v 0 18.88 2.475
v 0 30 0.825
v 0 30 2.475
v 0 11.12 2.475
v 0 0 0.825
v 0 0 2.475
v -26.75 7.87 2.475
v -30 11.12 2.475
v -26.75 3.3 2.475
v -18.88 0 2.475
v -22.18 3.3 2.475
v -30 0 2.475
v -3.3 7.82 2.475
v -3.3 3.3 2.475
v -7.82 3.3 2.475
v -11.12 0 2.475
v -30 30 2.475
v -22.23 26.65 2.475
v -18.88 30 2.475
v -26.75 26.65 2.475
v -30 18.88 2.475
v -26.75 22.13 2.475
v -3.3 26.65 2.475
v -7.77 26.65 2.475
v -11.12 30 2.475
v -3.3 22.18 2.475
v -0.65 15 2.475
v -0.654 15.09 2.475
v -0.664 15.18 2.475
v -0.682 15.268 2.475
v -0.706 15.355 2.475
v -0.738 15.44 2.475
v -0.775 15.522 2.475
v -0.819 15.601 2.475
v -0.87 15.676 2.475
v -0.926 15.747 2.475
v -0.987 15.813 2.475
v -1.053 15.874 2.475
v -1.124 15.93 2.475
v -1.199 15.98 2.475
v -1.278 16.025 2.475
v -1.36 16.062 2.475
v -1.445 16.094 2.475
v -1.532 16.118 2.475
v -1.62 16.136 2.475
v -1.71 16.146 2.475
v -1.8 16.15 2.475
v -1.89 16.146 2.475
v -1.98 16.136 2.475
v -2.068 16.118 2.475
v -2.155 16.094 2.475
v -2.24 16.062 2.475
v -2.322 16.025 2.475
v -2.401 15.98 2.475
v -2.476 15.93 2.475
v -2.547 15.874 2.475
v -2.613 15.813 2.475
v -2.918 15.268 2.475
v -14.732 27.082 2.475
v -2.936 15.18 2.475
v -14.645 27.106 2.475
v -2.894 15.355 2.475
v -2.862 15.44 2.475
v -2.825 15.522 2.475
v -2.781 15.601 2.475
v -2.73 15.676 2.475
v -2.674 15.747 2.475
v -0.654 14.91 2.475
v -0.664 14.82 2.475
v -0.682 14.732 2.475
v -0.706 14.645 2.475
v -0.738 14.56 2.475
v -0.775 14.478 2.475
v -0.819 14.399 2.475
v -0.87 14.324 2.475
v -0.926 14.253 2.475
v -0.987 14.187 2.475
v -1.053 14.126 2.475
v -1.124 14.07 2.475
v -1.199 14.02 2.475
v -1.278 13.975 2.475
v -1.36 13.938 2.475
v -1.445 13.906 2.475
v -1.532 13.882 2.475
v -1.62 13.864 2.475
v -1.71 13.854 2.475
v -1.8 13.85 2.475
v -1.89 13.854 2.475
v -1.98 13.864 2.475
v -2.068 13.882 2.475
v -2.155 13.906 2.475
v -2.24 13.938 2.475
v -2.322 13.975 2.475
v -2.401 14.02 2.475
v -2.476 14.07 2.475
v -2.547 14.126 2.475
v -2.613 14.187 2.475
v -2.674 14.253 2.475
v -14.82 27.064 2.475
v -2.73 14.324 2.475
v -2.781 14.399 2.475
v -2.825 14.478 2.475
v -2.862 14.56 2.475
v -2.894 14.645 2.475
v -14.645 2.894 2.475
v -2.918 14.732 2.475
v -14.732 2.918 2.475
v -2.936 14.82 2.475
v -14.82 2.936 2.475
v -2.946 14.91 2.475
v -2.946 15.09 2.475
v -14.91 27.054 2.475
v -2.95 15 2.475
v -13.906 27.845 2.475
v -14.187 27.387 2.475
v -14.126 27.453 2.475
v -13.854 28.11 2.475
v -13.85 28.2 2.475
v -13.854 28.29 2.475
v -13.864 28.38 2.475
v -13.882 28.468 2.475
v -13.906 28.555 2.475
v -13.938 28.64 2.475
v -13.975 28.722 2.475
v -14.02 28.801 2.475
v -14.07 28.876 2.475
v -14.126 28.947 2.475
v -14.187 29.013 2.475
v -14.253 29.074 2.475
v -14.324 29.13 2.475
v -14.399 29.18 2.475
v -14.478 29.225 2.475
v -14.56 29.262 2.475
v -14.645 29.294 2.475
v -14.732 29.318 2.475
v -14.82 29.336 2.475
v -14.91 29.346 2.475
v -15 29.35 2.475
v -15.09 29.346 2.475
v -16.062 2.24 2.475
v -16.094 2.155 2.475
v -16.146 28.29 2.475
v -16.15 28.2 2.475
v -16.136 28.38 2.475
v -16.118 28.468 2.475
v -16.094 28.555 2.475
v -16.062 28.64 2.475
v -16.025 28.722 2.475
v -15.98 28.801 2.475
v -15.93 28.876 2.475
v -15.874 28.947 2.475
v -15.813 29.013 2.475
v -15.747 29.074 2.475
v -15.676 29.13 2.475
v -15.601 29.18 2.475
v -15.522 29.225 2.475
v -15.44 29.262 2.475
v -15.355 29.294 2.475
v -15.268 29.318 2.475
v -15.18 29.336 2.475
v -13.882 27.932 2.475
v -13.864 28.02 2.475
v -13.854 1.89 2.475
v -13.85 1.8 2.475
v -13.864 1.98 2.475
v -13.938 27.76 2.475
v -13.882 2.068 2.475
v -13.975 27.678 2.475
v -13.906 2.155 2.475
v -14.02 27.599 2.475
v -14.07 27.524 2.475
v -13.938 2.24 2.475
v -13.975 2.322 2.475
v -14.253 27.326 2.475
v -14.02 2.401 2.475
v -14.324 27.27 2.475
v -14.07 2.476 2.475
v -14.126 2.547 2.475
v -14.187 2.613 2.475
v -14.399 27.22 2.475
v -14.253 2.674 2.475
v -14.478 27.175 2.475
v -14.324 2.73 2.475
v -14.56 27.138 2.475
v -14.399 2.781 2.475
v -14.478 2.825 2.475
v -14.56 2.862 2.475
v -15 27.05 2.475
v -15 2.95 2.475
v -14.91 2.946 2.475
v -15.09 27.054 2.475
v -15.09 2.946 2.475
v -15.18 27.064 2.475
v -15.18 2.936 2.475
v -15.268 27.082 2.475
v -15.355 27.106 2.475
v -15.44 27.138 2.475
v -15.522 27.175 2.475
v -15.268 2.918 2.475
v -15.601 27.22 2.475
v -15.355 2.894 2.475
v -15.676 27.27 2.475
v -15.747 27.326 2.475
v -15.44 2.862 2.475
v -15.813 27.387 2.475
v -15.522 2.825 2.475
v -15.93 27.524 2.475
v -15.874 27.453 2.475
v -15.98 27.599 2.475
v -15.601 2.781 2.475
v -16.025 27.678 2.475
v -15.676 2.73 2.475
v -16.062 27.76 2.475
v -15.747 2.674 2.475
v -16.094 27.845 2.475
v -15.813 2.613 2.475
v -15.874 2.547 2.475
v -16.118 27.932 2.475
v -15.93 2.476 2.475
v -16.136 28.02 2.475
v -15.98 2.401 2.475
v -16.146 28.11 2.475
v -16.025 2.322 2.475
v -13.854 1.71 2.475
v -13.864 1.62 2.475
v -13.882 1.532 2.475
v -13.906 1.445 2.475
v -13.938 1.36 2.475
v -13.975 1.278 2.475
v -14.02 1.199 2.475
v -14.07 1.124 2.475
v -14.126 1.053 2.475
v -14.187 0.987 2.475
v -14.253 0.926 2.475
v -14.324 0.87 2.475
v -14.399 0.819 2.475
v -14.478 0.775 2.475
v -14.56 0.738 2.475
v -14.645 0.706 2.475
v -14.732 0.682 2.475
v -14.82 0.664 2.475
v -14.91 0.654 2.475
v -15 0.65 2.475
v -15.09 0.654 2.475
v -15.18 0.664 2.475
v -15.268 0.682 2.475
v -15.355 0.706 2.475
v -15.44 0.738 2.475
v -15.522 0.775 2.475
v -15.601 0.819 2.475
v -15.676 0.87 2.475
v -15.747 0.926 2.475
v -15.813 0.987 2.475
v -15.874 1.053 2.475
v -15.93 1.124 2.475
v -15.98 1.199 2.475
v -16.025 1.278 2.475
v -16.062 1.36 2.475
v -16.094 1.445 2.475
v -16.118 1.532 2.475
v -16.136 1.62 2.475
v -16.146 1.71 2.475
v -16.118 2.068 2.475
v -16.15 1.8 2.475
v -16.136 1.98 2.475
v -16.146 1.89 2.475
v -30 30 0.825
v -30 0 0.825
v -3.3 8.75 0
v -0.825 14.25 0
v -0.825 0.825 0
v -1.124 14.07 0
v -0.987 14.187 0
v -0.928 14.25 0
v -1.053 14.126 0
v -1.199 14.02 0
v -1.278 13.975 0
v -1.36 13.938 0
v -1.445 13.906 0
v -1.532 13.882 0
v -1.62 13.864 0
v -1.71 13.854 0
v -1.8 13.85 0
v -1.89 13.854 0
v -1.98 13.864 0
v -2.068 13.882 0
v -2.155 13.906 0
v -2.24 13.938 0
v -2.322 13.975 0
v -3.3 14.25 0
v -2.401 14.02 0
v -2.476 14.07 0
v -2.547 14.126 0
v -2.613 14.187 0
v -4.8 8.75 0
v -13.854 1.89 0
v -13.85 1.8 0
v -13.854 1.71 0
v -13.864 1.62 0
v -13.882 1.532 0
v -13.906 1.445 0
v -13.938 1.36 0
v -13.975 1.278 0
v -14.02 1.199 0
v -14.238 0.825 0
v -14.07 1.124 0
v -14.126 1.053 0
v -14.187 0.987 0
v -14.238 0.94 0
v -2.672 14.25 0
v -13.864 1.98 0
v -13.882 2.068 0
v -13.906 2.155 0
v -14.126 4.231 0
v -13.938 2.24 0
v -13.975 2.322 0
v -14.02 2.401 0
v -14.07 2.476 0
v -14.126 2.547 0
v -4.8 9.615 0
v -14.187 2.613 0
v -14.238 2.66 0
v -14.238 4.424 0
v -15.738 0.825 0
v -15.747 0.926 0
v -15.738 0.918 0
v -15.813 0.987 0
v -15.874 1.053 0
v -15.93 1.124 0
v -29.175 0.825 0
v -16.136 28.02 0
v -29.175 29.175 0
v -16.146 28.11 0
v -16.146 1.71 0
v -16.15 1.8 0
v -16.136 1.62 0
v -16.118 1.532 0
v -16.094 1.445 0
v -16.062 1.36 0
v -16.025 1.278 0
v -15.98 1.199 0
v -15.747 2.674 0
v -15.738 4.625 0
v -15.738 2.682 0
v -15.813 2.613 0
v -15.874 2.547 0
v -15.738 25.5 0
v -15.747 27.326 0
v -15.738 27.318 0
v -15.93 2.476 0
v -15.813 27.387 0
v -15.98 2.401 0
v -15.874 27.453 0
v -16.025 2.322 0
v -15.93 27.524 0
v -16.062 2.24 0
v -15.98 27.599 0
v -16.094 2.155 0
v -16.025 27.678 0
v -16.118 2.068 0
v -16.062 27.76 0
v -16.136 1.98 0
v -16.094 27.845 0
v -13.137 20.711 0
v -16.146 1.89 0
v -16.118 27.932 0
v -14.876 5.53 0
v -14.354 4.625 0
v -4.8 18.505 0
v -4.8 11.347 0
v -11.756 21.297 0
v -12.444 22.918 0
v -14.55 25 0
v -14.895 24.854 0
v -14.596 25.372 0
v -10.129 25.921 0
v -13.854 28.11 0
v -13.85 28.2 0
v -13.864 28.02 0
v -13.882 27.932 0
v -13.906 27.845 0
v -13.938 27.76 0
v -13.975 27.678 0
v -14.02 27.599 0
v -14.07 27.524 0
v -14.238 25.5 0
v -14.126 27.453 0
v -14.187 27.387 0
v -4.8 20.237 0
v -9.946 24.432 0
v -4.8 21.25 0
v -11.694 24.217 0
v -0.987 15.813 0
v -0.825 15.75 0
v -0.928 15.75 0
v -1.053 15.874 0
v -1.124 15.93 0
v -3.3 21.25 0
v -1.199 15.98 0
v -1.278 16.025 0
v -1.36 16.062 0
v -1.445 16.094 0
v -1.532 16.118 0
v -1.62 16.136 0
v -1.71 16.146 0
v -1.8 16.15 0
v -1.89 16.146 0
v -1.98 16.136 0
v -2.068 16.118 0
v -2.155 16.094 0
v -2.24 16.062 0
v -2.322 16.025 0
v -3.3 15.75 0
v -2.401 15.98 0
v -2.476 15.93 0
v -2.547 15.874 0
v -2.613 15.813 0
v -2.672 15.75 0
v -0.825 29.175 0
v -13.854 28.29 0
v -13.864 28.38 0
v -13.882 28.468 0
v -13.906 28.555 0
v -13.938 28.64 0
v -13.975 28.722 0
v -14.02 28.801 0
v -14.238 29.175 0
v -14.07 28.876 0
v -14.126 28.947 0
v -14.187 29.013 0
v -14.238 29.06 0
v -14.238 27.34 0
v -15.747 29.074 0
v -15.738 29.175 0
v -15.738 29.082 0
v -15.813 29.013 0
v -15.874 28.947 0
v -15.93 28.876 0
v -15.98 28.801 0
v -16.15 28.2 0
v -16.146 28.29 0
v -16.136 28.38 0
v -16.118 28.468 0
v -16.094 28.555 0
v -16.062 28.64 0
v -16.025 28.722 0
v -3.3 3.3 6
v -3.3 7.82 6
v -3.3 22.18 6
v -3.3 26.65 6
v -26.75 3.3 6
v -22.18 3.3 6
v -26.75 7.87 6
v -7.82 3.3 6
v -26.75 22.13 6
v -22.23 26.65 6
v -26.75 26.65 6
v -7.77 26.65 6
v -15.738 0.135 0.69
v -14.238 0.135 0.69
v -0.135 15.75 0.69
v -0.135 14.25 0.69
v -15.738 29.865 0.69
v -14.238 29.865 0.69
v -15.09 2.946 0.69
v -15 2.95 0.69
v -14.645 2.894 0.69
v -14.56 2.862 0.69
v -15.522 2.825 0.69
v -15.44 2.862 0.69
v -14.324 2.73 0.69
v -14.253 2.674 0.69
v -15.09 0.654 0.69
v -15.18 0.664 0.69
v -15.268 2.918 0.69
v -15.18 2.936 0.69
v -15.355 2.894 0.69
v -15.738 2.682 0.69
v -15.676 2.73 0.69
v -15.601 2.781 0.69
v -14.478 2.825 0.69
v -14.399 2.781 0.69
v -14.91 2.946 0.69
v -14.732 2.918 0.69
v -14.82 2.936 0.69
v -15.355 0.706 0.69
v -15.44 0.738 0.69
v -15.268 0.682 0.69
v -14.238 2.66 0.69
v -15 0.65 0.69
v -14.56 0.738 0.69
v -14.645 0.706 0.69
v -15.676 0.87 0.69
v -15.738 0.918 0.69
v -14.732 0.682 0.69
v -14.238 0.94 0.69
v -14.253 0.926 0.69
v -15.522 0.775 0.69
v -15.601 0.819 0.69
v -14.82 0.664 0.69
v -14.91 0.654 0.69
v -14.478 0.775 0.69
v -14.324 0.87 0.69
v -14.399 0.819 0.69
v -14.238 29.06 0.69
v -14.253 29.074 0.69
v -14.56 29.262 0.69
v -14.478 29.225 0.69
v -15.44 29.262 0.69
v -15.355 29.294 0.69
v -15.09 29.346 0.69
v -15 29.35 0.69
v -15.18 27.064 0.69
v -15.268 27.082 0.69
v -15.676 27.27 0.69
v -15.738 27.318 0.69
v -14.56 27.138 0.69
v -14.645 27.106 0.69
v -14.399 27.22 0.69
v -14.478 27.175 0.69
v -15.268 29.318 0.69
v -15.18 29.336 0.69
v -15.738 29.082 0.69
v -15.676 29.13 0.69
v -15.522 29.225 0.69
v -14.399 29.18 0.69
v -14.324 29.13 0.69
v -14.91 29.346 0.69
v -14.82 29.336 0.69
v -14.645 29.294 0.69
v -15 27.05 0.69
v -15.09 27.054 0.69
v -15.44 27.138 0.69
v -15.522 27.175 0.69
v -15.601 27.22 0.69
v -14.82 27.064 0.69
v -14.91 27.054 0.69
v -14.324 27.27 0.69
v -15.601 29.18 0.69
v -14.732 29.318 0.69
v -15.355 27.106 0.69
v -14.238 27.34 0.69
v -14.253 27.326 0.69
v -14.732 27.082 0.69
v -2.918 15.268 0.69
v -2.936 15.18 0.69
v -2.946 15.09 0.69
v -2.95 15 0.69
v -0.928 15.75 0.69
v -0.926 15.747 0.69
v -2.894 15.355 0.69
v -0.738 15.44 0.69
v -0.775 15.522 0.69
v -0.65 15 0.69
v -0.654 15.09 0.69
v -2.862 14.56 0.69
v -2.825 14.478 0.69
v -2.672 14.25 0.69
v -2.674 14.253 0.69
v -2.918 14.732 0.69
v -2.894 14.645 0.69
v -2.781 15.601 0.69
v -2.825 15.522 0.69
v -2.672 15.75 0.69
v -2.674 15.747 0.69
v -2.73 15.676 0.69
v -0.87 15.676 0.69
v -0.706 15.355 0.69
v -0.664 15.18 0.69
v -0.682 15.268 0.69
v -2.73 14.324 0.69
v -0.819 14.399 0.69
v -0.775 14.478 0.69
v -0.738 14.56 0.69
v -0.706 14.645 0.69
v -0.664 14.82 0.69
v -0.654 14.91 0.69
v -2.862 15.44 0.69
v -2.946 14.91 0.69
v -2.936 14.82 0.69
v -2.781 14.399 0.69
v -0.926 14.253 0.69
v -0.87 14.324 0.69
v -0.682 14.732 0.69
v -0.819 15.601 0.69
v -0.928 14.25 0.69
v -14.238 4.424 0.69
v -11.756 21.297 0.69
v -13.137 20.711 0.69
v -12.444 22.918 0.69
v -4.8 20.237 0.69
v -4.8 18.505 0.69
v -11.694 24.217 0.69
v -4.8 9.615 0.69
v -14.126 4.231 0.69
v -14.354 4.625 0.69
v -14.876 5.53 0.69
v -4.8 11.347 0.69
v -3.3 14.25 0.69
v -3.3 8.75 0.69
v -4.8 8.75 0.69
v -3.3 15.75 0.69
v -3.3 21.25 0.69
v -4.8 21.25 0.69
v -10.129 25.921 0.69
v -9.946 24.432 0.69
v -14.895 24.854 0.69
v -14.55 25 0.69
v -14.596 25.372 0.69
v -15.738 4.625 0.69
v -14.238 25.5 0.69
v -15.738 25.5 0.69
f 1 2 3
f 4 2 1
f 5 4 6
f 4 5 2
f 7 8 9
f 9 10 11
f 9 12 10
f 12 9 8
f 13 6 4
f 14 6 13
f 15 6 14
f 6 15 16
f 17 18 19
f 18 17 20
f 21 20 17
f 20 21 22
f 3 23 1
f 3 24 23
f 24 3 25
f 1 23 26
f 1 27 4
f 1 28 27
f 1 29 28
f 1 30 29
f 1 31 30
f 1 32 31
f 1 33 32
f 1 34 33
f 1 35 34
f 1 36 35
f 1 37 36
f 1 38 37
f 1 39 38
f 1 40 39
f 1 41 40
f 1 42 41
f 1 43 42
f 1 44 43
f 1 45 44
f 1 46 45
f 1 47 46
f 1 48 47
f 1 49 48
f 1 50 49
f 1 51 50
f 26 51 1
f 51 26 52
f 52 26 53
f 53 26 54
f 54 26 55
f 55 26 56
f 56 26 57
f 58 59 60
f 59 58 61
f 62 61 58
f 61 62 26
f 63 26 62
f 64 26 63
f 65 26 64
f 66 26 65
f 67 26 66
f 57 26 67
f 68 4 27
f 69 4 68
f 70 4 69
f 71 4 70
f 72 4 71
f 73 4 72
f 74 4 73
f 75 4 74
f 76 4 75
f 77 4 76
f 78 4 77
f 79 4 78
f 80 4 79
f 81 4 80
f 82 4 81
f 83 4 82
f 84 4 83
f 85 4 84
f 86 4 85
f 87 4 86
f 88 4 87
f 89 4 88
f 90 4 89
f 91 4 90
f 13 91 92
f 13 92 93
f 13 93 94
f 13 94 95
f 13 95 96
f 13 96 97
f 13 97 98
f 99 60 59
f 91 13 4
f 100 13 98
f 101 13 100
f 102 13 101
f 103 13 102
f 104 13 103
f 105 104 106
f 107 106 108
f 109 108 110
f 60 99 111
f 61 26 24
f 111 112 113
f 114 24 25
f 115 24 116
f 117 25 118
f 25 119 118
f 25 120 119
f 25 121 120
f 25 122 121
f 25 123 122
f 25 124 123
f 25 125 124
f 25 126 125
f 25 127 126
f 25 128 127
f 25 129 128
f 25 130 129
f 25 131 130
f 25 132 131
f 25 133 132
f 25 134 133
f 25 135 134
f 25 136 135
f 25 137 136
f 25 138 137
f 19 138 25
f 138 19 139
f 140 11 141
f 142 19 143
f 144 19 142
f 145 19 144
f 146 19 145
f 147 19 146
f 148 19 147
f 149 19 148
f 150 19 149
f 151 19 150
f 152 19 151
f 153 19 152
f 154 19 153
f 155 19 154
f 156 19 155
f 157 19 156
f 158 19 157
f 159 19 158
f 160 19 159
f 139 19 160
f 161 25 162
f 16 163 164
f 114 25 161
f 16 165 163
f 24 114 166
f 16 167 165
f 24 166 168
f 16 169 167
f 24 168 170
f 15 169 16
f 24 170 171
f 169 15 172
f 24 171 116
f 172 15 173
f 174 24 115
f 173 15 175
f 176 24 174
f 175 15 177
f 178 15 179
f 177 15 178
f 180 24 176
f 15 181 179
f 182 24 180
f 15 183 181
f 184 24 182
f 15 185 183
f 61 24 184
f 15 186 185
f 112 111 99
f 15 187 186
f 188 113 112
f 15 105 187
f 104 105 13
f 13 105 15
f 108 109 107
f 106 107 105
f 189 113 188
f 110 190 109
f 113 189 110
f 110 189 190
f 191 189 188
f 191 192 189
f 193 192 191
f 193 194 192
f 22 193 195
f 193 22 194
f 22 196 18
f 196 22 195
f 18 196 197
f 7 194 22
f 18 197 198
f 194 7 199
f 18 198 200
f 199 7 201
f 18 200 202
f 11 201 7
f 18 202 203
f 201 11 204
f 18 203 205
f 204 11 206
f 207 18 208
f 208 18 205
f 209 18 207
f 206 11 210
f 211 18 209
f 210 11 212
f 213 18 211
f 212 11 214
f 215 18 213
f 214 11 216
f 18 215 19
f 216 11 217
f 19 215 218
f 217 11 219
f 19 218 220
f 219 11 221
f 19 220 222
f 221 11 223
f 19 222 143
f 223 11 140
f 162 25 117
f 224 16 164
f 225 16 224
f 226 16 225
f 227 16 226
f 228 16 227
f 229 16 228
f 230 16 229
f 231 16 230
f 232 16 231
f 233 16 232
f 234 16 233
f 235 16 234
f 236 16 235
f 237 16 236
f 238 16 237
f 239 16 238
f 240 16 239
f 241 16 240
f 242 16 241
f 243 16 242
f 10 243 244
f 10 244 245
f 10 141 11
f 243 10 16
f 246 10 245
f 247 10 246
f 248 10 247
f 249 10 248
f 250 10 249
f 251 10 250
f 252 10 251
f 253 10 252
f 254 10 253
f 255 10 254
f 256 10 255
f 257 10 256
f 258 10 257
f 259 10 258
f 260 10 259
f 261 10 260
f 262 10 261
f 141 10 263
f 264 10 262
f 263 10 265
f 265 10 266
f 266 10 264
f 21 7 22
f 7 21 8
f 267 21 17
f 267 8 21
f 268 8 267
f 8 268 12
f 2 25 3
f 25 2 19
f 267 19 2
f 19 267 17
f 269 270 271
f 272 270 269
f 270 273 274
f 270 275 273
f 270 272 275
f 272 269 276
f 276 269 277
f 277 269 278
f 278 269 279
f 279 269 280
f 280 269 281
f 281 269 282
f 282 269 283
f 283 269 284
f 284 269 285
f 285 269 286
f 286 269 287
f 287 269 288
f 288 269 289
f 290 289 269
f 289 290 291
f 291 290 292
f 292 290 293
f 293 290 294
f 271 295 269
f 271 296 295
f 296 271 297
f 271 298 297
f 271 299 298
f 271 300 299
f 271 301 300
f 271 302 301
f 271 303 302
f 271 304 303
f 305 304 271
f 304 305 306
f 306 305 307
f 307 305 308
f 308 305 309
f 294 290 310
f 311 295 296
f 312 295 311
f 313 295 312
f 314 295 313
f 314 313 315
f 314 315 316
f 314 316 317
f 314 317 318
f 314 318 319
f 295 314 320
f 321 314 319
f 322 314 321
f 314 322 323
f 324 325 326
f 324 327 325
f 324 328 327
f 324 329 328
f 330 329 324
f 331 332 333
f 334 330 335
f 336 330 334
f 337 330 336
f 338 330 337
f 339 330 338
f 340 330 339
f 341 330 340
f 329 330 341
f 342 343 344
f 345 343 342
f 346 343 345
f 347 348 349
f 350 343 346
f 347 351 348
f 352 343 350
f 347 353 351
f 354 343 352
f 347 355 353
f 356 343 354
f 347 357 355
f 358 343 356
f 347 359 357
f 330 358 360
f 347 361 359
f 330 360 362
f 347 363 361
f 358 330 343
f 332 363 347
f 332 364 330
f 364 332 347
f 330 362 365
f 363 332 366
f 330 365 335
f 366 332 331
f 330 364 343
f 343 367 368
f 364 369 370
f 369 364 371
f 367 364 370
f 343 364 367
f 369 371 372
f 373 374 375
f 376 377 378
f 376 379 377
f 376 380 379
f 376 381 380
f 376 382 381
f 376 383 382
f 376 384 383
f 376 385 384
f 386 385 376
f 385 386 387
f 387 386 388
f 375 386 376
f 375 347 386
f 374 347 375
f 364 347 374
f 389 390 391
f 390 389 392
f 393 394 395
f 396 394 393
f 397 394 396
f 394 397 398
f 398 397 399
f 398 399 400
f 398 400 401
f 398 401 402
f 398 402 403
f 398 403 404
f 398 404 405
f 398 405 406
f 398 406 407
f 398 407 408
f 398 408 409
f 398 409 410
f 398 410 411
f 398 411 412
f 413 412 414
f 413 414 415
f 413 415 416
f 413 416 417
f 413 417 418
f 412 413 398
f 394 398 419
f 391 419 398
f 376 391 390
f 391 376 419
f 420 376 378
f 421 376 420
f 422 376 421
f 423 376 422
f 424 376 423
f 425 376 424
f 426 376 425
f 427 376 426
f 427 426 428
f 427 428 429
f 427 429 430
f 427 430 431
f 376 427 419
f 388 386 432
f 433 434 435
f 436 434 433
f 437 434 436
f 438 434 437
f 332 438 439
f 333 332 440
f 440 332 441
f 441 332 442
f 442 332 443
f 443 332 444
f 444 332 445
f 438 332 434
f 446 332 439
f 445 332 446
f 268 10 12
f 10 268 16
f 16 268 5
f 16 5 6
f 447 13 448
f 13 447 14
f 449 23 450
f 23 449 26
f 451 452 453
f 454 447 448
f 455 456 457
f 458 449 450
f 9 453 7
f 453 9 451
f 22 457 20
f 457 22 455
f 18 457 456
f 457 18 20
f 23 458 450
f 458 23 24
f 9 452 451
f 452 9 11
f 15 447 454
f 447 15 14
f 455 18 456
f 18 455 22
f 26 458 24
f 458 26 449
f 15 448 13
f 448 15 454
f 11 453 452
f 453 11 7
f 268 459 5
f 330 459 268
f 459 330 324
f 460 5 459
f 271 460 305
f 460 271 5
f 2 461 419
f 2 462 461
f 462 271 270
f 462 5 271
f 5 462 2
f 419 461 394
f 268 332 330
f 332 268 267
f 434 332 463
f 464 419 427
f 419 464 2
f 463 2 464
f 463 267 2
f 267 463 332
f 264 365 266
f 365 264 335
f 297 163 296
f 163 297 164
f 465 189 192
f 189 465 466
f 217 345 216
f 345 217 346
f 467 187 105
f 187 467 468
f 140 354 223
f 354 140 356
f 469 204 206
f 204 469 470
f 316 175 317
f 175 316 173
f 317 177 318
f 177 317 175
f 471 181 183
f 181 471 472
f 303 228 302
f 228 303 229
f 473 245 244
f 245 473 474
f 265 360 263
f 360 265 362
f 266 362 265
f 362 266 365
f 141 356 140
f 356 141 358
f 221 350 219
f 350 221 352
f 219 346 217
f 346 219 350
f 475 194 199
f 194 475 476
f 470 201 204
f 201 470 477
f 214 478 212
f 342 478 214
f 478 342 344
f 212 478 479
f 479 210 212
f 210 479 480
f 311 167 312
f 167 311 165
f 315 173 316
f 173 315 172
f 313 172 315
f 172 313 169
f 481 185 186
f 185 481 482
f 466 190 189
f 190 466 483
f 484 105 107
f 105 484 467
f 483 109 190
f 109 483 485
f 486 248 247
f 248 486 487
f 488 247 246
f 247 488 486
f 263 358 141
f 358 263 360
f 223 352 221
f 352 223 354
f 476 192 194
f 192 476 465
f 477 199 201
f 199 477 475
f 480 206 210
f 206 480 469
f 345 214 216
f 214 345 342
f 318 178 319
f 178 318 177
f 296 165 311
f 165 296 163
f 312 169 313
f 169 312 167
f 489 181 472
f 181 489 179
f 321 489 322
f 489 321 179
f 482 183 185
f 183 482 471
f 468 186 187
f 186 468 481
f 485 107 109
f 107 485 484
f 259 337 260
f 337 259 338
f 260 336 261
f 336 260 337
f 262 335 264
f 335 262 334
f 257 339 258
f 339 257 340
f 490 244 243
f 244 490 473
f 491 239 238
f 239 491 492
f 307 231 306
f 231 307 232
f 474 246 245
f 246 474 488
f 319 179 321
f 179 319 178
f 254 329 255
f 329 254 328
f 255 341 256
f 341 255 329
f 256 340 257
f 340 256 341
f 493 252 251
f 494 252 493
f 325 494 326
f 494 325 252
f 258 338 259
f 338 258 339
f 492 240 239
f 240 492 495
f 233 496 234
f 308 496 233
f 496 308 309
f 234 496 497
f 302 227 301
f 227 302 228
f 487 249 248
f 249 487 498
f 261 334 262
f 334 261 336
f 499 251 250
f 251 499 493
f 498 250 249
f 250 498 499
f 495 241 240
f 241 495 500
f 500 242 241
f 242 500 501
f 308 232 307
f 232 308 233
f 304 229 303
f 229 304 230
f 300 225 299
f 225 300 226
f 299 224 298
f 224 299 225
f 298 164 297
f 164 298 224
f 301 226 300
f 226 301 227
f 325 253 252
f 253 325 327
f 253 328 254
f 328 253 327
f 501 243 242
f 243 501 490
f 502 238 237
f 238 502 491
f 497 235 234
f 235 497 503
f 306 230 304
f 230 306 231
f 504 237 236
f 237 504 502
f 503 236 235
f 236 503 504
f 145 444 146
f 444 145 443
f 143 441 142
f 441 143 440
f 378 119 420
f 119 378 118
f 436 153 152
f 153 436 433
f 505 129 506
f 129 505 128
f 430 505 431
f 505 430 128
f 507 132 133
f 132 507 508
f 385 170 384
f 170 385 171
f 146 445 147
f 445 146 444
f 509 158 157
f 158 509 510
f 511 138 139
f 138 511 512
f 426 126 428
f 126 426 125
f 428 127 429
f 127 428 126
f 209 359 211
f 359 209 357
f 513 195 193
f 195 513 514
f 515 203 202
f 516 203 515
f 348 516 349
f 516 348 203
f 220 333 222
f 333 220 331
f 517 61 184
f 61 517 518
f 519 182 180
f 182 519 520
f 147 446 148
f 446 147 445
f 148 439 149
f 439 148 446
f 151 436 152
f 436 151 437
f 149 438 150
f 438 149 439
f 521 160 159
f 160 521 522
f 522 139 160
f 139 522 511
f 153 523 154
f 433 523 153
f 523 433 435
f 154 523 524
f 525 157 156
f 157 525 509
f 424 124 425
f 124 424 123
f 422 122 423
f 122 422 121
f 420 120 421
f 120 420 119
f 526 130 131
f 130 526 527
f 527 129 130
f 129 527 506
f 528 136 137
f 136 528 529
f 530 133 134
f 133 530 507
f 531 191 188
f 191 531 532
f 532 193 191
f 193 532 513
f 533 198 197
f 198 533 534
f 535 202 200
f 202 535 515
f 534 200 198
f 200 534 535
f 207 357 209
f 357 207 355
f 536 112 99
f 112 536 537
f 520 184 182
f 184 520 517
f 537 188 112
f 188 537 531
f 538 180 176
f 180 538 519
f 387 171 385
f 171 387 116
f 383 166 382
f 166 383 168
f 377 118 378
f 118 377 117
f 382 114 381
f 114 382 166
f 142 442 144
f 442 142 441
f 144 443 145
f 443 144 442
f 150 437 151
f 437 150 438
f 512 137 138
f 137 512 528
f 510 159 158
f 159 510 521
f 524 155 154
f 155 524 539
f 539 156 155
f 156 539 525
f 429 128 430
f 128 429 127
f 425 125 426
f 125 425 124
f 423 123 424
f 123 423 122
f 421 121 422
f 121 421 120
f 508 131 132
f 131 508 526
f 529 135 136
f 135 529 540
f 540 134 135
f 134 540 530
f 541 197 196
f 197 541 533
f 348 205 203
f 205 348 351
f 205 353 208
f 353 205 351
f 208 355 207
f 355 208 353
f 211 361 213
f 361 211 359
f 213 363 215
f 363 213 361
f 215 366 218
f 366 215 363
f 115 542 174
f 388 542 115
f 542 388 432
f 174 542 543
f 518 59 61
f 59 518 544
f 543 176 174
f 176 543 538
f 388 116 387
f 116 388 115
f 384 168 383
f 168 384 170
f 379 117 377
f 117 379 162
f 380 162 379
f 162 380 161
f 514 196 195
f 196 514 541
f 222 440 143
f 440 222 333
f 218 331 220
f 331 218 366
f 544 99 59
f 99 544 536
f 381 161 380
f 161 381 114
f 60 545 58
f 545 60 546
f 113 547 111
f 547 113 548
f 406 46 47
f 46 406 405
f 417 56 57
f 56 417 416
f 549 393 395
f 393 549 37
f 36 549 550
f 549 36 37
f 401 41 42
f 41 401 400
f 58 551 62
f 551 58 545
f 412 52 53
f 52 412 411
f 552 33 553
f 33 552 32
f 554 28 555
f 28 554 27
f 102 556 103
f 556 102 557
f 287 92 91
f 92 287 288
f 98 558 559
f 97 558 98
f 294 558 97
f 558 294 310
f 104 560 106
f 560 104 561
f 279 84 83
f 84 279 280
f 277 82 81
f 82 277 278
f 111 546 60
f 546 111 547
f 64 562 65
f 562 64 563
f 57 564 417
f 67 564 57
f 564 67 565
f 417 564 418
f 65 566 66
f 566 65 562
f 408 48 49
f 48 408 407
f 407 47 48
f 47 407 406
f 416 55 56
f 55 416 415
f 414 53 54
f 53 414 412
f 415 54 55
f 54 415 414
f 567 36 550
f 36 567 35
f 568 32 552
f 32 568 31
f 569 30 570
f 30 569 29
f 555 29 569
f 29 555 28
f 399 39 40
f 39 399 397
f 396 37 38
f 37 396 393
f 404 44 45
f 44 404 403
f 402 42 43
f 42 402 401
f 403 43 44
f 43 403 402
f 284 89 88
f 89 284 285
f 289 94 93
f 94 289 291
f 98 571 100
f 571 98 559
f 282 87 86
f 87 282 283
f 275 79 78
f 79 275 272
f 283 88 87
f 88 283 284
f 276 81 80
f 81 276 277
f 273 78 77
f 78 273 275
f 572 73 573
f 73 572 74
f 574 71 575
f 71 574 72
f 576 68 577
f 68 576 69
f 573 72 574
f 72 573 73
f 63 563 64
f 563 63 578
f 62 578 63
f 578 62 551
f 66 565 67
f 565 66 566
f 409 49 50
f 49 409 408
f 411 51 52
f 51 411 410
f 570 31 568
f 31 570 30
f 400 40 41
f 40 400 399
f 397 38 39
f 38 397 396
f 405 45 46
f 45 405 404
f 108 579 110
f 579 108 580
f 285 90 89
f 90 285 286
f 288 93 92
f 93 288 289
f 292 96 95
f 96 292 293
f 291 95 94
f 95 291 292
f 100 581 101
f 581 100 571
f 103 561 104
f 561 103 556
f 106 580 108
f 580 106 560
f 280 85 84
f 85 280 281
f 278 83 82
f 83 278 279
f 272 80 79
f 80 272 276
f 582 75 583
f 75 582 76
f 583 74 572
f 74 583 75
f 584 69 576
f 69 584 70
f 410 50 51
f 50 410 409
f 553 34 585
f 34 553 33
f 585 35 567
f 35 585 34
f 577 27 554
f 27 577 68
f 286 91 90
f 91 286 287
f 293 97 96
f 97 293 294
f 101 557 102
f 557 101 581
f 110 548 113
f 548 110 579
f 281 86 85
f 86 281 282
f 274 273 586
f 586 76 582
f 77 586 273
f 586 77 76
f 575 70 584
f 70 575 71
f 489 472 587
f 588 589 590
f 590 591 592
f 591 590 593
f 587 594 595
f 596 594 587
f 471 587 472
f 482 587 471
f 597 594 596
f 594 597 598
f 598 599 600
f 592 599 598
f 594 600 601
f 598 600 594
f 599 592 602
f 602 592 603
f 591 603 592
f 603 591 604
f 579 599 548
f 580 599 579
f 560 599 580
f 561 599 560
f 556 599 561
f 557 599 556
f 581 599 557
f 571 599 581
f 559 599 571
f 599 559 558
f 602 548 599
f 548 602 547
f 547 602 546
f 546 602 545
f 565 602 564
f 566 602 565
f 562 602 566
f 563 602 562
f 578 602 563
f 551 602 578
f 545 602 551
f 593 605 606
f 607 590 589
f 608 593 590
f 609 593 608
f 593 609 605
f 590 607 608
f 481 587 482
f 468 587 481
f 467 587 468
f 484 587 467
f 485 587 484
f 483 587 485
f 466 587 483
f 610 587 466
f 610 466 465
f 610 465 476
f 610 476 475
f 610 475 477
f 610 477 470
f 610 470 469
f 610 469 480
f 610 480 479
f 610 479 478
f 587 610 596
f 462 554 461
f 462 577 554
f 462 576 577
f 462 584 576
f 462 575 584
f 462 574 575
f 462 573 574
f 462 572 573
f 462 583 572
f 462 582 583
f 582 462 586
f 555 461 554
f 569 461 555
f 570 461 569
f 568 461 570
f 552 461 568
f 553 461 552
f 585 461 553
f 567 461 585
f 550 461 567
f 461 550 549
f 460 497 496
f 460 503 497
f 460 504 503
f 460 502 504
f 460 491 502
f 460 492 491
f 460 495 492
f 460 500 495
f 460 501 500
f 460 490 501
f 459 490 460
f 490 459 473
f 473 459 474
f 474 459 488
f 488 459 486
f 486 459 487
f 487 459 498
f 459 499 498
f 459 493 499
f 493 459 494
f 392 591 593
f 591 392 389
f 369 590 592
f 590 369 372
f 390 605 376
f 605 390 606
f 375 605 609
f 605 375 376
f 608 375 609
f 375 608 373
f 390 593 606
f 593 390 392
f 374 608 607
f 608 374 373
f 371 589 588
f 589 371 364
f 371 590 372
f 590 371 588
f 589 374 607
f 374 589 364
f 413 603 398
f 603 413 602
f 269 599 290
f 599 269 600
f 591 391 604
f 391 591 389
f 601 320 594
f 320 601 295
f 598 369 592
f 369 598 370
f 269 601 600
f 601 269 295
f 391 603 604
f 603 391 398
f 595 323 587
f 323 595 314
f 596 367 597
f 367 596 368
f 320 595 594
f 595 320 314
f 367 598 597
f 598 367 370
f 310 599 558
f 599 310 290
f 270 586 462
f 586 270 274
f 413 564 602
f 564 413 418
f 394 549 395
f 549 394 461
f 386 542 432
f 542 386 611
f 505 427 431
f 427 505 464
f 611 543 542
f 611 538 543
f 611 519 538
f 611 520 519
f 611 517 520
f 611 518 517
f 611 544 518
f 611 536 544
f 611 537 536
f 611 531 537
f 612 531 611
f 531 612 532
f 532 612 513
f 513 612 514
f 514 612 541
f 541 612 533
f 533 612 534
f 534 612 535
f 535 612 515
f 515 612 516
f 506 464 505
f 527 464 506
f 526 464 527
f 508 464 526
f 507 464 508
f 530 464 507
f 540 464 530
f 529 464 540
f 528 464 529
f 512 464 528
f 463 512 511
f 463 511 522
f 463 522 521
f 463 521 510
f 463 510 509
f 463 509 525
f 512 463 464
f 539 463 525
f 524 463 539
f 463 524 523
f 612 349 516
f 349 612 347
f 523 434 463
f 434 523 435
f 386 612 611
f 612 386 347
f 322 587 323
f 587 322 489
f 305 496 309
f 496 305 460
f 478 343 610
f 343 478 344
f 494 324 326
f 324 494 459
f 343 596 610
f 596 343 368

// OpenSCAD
// file: sym_arrow.scad
module arrow(thickness, length, size, height)
{
    translate([thickness,-thickness/2])cube([length-thickness, thickness, height]);
    rotate([0,0,37])translate([0,-3*thickness/4])cube([size, thickness, height]);
    rotate([0,0,-37])translate([0,-thickness/4])cube([size, thickness, height]);
}
// file: sym_ring.scad
module ring(radius, thickness, height)
{
    difference()
    {
        cylinder(r=radius, h=height, $fn=64);
        translate([0,0,-thickness/2])cylinder(r=(radius-thickness), h=(height+thickness), $fn=64);
    }
}

ring(30, 1, 1);
// file: settings.scad
cube_width=30;
cube_height=16;
cube_thickness=3.3;

cap_width=30;
cap_height=6;
cap_thickness=3.3;

glyph_depth=0.7;
glyph_thickness=1.5;

photo_resitor_hole_r = 3.1;
spring_contact_hole_r = 3.35;
// file: sym_transistor_npn.scad
use <sym_ring.scad>
use <sym_arrow.scad>
use <sym_ring.scad>

module transistor_npn(diameter, thickness, height)
{
    //ring(0.5*diameter, thickness, height);
    
    //base
    translate([-diameter/4, -diameter/4, 0]) cube([thickness, diameter/2, height]);
    
    //emitter
    translate([1.6*diameter/8, -diameter/2.5, 0])rotate([0,0,150])arrow(thickness, 4*diameter/8, 3*thickness, height);
    
    //collector
    translate([2*diameter/8, diameter/2.3, 0])rotate([0,0,-150])arrow(thickness, 4.3*diameter/8, 0, height);
    
    //base wire
    translate([-2*diameter/3, 0,0])arrow(thickness, diameter/2.22, 0, height);
    
    //emitter wire 
    translate([3*diameter/16,-3*diameter/4-thickness,0])cube([thickness, 1.17*diameter/3, height]);
    
    //collector wire
    translate([3*diameter/16, 1.3*diameter/4+1.5*thickness,0])cube([thickness, 1.3*diameter/3, height]);
}

transistor_npn(30, 1.5, 0.7);
// file: cap_1x1.scad
include <settings.scad>

module cap_1x1(width, height, thickness, holes_mask)
{
    width1=width-thickness;
    difference()
    {
        union()
        {
            cube([width, width, thickness*3/4]);
            translate([thickness,thickness,0])cube([width-2*thickness, width-2*thickness, height]);
        }
        union()
        {
            translate([width/2,width/2,0])rotate([0,0,45])translate([-width1/2,-width1/2,thickness*3/4]) cube([width1,width1,height]);
                        //corners
            translate([0,0.25*thickness,0])rotate([45,0,0]) translate([-0.5*width, -width, -0.5*height]) cube([2*width, width, 2*height]);
            translate([0.25*thickness,0,0]) rotate([0,-45,0]) translate([-width, -0.5*width, -0.5*height]) cube([width, 2*width, 2*height]);
            translate([width-0.25*thickness,0,0]) rotate([0,45,0]) translate([0, 0, -0.5*height]) cube([width, 2*width, 2*height]);
            translate([0,width-0.25*thickness,0]) rotate([-45,0,0]) translate([-0.5*width, 0, -0.5*height]) cube([2*width, width, 2*height]);
            
            if (holes_mask >= 8)
            {
                translate([width/2, thickness-1.5, -0.5]) cylinder(r=1.15, h=height*1.5, $fn=80);
            }
            if ((holes_mask%8) >= 4)
            {
                translate([width/2, width-thickness+1.5, -0.5]) cylinder(r=1.15, h=height*1.5, $fn=80);
            }
            if ((holes_mask%4)>= 2)
            {
                translate([thickness-1.5, width/2, -0.5]) cylinder(r=1.15, h=height*1.5, $fn=80);
            }
            if (holes_mask%2 >= 1)
            {
                translate([width-thickness+1.5, width/2, -0.5]) cylinder(r=1.15, h=height*1.5, $fn=80);
            }
        }
    }
}

cap_1x1(cap_width, cap_height, cap_thickness, 9);
//ring(10,1,1);
//arrow(1, 20, 3, 1);
//transistor_npn(30, 1, 1);
// main file
use <cap_1x1.scad>
use <sym_transistor_npn.scad>
include <settings.scad>

module cap_1x1_npn_transistor_flipped(width, height, thickness)
{
    mirror([1,0,0]) difference()
    {
        cap_1x1(width, height, thickness, 14);
        translate([3*width/8-1.7,width/2,-0.01])mirror([0,1,0]) transistor_npn(25, glyph_thickness, glyph_depth);
    }
}

cap_1x1_npn_transistor_flipped(cap_width, cap_height, cap_thickness);
